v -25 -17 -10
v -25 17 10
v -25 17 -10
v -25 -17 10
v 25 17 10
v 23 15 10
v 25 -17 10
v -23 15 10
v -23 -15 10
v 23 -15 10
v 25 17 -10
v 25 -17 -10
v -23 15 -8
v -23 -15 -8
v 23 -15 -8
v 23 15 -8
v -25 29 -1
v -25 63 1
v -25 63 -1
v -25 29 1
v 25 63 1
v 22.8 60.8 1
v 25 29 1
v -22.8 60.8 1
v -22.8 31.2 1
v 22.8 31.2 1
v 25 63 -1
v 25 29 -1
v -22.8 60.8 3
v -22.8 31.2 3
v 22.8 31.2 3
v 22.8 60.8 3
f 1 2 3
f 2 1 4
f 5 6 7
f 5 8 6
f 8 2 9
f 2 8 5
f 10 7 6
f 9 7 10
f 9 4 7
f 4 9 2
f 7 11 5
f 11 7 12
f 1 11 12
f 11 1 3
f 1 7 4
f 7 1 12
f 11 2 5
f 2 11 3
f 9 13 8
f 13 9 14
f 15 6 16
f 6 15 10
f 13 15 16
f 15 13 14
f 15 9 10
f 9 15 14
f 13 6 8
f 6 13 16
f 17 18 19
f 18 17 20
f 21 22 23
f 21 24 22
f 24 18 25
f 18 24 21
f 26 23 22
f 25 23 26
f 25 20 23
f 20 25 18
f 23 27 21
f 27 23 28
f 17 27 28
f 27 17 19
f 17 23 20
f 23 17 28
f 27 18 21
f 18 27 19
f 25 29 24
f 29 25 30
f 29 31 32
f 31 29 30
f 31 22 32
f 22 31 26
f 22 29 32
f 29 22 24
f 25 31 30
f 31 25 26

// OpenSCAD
// Checkpoint 1b - Enclosure box with a lipped lid.
// Shown open, lid beside the box, so the step that makes it seat is visible.
$fn = 48;
WALL = 2;
module box() {
  difference() {
    cube([50, 34, 20], center = true);
    translate([0, 0, WALL]) cube([50 - 2 * WALL, 34 - 2 * WALL, 20], center = true);
  }
}
module lid() {
  union() {
    cube([50, 34, 2], center = true);
    // The lip: slightly undersize so it drops into the cavity.
    translate([0, 0, 2]) cube([50 - 2 * WALL - 0.4, 34 - 2 * WALL - 0.4, 2], center = true);
  }
}
box();
translate([0, 46, 0]) lid();
